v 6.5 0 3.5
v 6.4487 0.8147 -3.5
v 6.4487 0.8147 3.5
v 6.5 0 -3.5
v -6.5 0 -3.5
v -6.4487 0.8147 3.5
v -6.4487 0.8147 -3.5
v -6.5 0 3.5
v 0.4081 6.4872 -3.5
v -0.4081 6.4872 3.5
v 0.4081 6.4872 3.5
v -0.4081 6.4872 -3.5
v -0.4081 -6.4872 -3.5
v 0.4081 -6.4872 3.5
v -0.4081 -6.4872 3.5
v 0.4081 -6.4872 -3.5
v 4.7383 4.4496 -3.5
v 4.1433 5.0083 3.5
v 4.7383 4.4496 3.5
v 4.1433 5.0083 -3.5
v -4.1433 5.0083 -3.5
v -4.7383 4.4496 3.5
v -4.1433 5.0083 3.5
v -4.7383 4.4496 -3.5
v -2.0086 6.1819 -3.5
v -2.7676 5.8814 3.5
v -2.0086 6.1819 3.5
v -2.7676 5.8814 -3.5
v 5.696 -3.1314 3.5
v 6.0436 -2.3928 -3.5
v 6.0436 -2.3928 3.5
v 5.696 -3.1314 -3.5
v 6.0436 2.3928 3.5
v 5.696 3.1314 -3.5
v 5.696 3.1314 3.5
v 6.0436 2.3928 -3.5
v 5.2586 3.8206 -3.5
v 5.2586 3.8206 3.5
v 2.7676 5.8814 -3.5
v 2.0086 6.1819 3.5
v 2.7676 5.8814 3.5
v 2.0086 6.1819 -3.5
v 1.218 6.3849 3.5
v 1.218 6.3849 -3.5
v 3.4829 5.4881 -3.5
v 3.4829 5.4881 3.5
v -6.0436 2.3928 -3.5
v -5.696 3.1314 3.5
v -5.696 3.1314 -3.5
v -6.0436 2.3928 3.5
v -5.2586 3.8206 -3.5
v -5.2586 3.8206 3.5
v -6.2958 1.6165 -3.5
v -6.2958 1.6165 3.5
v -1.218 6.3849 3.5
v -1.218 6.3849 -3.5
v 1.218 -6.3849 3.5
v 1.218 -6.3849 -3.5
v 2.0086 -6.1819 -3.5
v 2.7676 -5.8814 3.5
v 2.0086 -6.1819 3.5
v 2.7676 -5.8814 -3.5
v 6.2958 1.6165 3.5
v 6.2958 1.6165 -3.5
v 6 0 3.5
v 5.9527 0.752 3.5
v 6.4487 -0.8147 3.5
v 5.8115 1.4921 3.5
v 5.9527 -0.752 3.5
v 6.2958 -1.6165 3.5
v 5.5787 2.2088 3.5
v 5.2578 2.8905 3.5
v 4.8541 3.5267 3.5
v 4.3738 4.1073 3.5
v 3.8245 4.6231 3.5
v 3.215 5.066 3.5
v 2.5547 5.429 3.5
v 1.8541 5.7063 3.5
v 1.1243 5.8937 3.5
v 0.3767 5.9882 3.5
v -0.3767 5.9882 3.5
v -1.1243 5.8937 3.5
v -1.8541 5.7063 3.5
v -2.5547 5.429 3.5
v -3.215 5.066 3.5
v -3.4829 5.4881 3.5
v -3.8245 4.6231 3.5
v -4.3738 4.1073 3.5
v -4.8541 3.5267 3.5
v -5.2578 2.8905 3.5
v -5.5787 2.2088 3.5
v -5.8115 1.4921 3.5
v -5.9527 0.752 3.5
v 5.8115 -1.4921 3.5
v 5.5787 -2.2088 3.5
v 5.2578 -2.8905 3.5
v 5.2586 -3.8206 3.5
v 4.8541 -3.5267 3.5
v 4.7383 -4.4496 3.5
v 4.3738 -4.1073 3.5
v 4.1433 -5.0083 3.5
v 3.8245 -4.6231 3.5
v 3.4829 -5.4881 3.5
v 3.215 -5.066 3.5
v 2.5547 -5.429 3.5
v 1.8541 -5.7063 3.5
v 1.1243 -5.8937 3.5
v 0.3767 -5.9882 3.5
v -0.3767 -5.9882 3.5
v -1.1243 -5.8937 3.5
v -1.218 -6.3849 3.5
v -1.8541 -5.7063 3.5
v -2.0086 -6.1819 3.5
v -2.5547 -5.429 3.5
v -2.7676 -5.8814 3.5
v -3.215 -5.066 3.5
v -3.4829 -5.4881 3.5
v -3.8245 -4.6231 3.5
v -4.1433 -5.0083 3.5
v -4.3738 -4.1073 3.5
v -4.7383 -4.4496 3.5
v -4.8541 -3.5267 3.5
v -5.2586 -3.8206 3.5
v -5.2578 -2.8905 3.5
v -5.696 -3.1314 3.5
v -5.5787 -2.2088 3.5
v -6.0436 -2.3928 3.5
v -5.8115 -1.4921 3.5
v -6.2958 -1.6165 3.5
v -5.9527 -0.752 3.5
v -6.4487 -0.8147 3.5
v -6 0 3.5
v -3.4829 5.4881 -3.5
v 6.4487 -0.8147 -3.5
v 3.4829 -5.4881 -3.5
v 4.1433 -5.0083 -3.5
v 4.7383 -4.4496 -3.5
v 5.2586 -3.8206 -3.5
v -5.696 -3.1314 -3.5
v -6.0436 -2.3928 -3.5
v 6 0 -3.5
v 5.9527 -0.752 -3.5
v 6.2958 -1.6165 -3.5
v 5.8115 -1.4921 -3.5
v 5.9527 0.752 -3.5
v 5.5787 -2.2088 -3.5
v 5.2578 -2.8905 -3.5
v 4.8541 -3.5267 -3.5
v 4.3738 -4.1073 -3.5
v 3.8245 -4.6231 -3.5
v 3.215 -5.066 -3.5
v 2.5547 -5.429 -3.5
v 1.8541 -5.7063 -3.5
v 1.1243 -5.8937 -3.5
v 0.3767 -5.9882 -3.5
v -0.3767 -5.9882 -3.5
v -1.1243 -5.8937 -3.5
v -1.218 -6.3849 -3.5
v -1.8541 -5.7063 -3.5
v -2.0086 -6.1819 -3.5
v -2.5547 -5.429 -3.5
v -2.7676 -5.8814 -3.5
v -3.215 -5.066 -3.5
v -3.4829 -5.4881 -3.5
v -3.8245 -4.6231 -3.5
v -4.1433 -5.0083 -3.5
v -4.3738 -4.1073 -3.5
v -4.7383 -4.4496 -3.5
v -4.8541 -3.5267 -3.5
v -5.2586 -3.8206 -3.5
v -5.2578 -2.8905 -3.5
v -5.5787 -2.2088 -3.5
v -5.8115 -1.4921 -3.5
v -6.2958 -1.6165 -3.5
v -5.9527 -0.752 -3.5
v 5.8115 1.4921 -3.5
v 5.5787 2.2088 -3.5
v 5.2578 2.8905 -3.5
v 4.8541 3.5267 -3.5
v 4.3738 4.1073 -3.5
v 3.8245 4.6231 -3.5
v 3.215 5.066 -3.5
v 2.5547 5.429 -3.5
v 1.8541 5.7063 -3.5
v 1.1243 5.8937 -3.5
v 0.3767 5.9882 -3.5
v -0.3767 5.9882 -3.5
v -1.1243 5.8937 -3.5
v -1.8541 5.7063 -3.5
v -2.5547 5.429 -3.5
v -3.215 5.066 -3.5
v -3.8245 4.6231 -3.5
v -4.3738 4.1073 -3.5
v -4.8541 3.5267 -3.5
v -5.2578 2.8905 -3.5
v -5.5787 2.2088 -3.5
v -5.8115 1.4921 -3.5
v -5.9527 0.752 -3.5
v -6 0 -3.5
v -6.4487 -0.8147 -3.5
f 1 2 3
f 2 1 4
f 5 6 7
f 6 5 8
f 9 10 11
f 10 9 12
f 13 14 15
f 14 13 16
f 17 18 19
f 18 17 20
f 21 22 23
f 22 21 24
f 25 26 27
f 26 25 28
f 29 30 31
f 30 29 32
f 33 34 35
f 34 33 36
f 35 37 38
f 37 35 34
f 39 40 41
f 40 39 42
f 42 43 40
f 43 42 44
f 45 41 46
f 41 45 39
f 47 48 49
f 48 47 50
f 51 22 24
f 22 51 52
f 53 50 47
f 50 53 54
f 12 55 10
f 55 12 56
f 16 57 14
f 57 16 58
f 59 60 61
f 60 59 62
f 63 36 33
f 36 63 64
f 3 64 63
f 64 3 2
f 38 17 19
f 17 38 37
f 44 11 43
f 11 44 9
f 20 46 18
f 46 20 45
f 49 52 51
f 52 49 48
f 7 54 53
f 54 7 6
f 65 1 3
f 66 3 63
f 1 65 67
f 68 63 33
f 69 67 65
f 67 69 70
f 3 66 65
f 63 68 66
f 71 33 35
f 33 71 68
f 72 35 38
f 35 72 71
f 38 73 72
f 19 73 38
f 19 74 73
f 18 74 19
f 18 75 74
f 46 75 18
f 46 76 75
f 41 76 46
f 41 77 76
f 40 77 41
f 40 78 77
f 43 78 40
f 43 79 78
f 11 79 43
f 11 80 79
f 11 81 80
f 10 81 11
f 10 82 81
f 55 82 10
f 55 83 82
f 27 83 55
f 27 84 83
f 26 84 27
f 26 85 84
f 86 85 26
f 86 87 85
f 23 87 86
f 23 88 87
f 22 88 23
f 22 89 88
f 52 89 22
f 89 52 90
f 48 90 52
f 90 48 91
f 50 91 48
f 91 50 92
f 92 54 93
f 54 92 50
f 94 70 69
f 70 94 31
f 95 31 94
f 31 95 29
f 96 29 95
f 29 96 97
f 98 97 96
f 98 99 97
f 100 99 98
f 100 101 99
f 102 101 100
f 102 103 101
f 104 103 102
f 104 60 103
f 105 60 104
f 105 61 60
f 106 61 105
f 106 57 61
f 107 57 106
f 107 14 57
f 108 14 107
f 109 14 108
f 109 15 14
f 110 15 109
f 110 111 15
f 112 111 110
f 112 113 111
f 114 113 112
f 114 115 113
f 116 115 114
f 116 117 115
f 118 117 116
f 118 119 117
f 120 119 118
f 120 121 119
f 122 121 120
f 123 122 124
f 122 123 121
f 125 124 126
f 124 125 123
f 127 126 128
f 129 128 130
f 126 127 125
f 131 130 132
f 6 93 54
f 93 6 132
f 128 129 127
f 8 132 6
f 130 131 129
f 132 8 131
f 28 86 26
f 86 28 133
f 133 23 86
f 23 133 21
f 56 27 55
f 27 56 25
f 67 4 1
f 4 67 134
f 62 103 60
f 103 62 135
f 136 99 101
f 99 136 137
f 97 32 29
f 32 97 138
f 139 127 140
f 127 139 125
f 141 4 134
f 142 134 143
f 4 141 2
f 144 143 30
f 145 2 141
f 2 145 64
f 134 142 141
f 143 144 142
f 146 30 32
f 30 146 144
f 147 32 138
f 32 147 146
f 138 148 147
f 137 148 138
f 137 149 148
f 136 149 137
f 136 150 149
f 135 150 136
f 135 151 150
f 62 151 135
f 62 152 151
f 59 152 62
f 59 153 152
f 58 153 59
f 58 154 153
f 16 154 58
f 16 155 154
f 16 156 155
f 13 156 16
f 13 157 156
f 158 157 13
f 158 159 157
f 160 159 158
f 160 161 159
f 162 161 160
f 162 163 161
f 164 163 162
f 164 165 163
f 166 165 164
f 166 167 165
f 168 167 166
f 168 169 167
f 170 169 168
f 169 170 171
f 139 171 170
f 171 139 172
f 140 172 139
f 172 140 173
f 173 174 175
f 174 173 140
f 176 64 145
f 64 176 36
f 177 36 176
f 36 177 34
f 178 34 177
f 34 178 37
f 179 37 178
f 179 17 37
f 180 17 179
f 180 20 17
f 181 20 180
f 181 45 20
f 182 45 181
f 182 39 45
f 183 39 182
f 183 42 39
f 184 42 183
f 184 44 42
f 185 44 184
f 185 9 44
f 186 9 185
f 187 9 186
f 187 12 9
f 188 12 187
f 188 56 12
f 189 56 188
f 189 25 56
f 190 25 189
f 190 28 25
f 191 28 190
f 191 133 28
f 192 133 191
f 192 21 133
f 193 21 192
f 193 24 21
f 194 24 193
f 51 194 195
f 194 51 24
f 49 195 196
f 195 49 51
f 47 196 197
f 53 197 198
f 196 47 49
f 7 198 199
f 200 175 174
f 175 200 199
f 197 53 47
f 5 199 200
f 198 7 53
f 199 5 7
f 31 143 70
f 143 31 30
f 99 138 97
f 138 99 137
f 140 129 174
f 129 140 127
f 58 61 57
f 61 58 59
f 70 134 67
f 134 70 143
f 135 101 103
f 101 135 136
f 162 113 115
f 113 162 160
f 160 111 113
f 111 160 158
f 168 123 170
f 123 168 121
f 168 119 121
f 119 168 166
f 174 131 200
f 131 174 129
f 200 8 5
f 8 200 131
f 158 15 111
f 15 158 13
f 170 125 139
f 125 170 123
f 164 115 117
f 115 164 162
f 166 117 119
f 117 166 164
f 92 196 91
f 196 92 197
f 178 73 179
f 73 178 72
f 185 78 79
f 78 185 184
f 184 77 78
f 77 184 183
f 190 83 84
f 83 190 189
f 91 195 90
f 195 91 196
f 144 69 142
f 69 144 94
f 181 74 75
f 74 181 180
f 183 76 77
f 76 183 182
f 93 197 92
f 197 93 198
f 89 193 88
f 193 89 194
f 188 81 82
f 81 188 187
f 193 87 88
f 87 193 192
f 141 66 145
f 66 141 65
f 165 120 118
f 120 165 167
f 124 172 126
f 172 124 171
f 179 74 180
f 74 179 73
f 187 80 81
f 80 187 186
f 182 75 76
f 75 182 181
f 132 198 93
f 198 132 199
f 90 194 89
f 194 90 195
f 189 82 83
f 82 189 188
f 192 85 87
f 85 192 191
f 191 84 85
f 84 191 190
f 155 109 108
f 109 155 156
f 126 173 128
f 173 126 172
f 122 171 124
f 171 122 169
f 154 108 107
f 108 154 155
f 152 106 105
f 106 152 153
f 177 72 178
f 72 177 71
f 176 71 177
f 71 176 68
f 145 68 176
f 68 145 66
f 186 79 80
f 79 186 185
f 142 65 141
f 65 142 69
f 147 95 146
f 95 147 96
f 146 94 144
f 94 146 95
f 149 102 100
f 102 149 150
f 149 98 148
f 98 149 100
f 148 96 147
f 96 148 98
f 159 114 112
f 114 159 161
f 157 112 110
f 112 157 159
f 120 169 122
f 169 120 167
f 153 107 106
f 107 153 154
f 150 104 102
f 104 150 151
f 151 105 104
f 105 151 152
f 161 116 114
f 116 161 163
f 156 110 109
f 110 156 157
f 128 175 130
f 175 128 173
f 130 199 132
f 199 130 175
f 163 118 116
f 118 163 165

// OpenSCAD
$fn = 50;


difference() {
	union() {
		translate(v = [0, 0, -3.5000000000]) {
			cylinder(h = 7, r = 6.5000000000);
		}
	}
	union() {
		translate(v = [0, 0, -100.0000000000]) {
			cylinder(h = 200, r = 6);
		}
	}
}
